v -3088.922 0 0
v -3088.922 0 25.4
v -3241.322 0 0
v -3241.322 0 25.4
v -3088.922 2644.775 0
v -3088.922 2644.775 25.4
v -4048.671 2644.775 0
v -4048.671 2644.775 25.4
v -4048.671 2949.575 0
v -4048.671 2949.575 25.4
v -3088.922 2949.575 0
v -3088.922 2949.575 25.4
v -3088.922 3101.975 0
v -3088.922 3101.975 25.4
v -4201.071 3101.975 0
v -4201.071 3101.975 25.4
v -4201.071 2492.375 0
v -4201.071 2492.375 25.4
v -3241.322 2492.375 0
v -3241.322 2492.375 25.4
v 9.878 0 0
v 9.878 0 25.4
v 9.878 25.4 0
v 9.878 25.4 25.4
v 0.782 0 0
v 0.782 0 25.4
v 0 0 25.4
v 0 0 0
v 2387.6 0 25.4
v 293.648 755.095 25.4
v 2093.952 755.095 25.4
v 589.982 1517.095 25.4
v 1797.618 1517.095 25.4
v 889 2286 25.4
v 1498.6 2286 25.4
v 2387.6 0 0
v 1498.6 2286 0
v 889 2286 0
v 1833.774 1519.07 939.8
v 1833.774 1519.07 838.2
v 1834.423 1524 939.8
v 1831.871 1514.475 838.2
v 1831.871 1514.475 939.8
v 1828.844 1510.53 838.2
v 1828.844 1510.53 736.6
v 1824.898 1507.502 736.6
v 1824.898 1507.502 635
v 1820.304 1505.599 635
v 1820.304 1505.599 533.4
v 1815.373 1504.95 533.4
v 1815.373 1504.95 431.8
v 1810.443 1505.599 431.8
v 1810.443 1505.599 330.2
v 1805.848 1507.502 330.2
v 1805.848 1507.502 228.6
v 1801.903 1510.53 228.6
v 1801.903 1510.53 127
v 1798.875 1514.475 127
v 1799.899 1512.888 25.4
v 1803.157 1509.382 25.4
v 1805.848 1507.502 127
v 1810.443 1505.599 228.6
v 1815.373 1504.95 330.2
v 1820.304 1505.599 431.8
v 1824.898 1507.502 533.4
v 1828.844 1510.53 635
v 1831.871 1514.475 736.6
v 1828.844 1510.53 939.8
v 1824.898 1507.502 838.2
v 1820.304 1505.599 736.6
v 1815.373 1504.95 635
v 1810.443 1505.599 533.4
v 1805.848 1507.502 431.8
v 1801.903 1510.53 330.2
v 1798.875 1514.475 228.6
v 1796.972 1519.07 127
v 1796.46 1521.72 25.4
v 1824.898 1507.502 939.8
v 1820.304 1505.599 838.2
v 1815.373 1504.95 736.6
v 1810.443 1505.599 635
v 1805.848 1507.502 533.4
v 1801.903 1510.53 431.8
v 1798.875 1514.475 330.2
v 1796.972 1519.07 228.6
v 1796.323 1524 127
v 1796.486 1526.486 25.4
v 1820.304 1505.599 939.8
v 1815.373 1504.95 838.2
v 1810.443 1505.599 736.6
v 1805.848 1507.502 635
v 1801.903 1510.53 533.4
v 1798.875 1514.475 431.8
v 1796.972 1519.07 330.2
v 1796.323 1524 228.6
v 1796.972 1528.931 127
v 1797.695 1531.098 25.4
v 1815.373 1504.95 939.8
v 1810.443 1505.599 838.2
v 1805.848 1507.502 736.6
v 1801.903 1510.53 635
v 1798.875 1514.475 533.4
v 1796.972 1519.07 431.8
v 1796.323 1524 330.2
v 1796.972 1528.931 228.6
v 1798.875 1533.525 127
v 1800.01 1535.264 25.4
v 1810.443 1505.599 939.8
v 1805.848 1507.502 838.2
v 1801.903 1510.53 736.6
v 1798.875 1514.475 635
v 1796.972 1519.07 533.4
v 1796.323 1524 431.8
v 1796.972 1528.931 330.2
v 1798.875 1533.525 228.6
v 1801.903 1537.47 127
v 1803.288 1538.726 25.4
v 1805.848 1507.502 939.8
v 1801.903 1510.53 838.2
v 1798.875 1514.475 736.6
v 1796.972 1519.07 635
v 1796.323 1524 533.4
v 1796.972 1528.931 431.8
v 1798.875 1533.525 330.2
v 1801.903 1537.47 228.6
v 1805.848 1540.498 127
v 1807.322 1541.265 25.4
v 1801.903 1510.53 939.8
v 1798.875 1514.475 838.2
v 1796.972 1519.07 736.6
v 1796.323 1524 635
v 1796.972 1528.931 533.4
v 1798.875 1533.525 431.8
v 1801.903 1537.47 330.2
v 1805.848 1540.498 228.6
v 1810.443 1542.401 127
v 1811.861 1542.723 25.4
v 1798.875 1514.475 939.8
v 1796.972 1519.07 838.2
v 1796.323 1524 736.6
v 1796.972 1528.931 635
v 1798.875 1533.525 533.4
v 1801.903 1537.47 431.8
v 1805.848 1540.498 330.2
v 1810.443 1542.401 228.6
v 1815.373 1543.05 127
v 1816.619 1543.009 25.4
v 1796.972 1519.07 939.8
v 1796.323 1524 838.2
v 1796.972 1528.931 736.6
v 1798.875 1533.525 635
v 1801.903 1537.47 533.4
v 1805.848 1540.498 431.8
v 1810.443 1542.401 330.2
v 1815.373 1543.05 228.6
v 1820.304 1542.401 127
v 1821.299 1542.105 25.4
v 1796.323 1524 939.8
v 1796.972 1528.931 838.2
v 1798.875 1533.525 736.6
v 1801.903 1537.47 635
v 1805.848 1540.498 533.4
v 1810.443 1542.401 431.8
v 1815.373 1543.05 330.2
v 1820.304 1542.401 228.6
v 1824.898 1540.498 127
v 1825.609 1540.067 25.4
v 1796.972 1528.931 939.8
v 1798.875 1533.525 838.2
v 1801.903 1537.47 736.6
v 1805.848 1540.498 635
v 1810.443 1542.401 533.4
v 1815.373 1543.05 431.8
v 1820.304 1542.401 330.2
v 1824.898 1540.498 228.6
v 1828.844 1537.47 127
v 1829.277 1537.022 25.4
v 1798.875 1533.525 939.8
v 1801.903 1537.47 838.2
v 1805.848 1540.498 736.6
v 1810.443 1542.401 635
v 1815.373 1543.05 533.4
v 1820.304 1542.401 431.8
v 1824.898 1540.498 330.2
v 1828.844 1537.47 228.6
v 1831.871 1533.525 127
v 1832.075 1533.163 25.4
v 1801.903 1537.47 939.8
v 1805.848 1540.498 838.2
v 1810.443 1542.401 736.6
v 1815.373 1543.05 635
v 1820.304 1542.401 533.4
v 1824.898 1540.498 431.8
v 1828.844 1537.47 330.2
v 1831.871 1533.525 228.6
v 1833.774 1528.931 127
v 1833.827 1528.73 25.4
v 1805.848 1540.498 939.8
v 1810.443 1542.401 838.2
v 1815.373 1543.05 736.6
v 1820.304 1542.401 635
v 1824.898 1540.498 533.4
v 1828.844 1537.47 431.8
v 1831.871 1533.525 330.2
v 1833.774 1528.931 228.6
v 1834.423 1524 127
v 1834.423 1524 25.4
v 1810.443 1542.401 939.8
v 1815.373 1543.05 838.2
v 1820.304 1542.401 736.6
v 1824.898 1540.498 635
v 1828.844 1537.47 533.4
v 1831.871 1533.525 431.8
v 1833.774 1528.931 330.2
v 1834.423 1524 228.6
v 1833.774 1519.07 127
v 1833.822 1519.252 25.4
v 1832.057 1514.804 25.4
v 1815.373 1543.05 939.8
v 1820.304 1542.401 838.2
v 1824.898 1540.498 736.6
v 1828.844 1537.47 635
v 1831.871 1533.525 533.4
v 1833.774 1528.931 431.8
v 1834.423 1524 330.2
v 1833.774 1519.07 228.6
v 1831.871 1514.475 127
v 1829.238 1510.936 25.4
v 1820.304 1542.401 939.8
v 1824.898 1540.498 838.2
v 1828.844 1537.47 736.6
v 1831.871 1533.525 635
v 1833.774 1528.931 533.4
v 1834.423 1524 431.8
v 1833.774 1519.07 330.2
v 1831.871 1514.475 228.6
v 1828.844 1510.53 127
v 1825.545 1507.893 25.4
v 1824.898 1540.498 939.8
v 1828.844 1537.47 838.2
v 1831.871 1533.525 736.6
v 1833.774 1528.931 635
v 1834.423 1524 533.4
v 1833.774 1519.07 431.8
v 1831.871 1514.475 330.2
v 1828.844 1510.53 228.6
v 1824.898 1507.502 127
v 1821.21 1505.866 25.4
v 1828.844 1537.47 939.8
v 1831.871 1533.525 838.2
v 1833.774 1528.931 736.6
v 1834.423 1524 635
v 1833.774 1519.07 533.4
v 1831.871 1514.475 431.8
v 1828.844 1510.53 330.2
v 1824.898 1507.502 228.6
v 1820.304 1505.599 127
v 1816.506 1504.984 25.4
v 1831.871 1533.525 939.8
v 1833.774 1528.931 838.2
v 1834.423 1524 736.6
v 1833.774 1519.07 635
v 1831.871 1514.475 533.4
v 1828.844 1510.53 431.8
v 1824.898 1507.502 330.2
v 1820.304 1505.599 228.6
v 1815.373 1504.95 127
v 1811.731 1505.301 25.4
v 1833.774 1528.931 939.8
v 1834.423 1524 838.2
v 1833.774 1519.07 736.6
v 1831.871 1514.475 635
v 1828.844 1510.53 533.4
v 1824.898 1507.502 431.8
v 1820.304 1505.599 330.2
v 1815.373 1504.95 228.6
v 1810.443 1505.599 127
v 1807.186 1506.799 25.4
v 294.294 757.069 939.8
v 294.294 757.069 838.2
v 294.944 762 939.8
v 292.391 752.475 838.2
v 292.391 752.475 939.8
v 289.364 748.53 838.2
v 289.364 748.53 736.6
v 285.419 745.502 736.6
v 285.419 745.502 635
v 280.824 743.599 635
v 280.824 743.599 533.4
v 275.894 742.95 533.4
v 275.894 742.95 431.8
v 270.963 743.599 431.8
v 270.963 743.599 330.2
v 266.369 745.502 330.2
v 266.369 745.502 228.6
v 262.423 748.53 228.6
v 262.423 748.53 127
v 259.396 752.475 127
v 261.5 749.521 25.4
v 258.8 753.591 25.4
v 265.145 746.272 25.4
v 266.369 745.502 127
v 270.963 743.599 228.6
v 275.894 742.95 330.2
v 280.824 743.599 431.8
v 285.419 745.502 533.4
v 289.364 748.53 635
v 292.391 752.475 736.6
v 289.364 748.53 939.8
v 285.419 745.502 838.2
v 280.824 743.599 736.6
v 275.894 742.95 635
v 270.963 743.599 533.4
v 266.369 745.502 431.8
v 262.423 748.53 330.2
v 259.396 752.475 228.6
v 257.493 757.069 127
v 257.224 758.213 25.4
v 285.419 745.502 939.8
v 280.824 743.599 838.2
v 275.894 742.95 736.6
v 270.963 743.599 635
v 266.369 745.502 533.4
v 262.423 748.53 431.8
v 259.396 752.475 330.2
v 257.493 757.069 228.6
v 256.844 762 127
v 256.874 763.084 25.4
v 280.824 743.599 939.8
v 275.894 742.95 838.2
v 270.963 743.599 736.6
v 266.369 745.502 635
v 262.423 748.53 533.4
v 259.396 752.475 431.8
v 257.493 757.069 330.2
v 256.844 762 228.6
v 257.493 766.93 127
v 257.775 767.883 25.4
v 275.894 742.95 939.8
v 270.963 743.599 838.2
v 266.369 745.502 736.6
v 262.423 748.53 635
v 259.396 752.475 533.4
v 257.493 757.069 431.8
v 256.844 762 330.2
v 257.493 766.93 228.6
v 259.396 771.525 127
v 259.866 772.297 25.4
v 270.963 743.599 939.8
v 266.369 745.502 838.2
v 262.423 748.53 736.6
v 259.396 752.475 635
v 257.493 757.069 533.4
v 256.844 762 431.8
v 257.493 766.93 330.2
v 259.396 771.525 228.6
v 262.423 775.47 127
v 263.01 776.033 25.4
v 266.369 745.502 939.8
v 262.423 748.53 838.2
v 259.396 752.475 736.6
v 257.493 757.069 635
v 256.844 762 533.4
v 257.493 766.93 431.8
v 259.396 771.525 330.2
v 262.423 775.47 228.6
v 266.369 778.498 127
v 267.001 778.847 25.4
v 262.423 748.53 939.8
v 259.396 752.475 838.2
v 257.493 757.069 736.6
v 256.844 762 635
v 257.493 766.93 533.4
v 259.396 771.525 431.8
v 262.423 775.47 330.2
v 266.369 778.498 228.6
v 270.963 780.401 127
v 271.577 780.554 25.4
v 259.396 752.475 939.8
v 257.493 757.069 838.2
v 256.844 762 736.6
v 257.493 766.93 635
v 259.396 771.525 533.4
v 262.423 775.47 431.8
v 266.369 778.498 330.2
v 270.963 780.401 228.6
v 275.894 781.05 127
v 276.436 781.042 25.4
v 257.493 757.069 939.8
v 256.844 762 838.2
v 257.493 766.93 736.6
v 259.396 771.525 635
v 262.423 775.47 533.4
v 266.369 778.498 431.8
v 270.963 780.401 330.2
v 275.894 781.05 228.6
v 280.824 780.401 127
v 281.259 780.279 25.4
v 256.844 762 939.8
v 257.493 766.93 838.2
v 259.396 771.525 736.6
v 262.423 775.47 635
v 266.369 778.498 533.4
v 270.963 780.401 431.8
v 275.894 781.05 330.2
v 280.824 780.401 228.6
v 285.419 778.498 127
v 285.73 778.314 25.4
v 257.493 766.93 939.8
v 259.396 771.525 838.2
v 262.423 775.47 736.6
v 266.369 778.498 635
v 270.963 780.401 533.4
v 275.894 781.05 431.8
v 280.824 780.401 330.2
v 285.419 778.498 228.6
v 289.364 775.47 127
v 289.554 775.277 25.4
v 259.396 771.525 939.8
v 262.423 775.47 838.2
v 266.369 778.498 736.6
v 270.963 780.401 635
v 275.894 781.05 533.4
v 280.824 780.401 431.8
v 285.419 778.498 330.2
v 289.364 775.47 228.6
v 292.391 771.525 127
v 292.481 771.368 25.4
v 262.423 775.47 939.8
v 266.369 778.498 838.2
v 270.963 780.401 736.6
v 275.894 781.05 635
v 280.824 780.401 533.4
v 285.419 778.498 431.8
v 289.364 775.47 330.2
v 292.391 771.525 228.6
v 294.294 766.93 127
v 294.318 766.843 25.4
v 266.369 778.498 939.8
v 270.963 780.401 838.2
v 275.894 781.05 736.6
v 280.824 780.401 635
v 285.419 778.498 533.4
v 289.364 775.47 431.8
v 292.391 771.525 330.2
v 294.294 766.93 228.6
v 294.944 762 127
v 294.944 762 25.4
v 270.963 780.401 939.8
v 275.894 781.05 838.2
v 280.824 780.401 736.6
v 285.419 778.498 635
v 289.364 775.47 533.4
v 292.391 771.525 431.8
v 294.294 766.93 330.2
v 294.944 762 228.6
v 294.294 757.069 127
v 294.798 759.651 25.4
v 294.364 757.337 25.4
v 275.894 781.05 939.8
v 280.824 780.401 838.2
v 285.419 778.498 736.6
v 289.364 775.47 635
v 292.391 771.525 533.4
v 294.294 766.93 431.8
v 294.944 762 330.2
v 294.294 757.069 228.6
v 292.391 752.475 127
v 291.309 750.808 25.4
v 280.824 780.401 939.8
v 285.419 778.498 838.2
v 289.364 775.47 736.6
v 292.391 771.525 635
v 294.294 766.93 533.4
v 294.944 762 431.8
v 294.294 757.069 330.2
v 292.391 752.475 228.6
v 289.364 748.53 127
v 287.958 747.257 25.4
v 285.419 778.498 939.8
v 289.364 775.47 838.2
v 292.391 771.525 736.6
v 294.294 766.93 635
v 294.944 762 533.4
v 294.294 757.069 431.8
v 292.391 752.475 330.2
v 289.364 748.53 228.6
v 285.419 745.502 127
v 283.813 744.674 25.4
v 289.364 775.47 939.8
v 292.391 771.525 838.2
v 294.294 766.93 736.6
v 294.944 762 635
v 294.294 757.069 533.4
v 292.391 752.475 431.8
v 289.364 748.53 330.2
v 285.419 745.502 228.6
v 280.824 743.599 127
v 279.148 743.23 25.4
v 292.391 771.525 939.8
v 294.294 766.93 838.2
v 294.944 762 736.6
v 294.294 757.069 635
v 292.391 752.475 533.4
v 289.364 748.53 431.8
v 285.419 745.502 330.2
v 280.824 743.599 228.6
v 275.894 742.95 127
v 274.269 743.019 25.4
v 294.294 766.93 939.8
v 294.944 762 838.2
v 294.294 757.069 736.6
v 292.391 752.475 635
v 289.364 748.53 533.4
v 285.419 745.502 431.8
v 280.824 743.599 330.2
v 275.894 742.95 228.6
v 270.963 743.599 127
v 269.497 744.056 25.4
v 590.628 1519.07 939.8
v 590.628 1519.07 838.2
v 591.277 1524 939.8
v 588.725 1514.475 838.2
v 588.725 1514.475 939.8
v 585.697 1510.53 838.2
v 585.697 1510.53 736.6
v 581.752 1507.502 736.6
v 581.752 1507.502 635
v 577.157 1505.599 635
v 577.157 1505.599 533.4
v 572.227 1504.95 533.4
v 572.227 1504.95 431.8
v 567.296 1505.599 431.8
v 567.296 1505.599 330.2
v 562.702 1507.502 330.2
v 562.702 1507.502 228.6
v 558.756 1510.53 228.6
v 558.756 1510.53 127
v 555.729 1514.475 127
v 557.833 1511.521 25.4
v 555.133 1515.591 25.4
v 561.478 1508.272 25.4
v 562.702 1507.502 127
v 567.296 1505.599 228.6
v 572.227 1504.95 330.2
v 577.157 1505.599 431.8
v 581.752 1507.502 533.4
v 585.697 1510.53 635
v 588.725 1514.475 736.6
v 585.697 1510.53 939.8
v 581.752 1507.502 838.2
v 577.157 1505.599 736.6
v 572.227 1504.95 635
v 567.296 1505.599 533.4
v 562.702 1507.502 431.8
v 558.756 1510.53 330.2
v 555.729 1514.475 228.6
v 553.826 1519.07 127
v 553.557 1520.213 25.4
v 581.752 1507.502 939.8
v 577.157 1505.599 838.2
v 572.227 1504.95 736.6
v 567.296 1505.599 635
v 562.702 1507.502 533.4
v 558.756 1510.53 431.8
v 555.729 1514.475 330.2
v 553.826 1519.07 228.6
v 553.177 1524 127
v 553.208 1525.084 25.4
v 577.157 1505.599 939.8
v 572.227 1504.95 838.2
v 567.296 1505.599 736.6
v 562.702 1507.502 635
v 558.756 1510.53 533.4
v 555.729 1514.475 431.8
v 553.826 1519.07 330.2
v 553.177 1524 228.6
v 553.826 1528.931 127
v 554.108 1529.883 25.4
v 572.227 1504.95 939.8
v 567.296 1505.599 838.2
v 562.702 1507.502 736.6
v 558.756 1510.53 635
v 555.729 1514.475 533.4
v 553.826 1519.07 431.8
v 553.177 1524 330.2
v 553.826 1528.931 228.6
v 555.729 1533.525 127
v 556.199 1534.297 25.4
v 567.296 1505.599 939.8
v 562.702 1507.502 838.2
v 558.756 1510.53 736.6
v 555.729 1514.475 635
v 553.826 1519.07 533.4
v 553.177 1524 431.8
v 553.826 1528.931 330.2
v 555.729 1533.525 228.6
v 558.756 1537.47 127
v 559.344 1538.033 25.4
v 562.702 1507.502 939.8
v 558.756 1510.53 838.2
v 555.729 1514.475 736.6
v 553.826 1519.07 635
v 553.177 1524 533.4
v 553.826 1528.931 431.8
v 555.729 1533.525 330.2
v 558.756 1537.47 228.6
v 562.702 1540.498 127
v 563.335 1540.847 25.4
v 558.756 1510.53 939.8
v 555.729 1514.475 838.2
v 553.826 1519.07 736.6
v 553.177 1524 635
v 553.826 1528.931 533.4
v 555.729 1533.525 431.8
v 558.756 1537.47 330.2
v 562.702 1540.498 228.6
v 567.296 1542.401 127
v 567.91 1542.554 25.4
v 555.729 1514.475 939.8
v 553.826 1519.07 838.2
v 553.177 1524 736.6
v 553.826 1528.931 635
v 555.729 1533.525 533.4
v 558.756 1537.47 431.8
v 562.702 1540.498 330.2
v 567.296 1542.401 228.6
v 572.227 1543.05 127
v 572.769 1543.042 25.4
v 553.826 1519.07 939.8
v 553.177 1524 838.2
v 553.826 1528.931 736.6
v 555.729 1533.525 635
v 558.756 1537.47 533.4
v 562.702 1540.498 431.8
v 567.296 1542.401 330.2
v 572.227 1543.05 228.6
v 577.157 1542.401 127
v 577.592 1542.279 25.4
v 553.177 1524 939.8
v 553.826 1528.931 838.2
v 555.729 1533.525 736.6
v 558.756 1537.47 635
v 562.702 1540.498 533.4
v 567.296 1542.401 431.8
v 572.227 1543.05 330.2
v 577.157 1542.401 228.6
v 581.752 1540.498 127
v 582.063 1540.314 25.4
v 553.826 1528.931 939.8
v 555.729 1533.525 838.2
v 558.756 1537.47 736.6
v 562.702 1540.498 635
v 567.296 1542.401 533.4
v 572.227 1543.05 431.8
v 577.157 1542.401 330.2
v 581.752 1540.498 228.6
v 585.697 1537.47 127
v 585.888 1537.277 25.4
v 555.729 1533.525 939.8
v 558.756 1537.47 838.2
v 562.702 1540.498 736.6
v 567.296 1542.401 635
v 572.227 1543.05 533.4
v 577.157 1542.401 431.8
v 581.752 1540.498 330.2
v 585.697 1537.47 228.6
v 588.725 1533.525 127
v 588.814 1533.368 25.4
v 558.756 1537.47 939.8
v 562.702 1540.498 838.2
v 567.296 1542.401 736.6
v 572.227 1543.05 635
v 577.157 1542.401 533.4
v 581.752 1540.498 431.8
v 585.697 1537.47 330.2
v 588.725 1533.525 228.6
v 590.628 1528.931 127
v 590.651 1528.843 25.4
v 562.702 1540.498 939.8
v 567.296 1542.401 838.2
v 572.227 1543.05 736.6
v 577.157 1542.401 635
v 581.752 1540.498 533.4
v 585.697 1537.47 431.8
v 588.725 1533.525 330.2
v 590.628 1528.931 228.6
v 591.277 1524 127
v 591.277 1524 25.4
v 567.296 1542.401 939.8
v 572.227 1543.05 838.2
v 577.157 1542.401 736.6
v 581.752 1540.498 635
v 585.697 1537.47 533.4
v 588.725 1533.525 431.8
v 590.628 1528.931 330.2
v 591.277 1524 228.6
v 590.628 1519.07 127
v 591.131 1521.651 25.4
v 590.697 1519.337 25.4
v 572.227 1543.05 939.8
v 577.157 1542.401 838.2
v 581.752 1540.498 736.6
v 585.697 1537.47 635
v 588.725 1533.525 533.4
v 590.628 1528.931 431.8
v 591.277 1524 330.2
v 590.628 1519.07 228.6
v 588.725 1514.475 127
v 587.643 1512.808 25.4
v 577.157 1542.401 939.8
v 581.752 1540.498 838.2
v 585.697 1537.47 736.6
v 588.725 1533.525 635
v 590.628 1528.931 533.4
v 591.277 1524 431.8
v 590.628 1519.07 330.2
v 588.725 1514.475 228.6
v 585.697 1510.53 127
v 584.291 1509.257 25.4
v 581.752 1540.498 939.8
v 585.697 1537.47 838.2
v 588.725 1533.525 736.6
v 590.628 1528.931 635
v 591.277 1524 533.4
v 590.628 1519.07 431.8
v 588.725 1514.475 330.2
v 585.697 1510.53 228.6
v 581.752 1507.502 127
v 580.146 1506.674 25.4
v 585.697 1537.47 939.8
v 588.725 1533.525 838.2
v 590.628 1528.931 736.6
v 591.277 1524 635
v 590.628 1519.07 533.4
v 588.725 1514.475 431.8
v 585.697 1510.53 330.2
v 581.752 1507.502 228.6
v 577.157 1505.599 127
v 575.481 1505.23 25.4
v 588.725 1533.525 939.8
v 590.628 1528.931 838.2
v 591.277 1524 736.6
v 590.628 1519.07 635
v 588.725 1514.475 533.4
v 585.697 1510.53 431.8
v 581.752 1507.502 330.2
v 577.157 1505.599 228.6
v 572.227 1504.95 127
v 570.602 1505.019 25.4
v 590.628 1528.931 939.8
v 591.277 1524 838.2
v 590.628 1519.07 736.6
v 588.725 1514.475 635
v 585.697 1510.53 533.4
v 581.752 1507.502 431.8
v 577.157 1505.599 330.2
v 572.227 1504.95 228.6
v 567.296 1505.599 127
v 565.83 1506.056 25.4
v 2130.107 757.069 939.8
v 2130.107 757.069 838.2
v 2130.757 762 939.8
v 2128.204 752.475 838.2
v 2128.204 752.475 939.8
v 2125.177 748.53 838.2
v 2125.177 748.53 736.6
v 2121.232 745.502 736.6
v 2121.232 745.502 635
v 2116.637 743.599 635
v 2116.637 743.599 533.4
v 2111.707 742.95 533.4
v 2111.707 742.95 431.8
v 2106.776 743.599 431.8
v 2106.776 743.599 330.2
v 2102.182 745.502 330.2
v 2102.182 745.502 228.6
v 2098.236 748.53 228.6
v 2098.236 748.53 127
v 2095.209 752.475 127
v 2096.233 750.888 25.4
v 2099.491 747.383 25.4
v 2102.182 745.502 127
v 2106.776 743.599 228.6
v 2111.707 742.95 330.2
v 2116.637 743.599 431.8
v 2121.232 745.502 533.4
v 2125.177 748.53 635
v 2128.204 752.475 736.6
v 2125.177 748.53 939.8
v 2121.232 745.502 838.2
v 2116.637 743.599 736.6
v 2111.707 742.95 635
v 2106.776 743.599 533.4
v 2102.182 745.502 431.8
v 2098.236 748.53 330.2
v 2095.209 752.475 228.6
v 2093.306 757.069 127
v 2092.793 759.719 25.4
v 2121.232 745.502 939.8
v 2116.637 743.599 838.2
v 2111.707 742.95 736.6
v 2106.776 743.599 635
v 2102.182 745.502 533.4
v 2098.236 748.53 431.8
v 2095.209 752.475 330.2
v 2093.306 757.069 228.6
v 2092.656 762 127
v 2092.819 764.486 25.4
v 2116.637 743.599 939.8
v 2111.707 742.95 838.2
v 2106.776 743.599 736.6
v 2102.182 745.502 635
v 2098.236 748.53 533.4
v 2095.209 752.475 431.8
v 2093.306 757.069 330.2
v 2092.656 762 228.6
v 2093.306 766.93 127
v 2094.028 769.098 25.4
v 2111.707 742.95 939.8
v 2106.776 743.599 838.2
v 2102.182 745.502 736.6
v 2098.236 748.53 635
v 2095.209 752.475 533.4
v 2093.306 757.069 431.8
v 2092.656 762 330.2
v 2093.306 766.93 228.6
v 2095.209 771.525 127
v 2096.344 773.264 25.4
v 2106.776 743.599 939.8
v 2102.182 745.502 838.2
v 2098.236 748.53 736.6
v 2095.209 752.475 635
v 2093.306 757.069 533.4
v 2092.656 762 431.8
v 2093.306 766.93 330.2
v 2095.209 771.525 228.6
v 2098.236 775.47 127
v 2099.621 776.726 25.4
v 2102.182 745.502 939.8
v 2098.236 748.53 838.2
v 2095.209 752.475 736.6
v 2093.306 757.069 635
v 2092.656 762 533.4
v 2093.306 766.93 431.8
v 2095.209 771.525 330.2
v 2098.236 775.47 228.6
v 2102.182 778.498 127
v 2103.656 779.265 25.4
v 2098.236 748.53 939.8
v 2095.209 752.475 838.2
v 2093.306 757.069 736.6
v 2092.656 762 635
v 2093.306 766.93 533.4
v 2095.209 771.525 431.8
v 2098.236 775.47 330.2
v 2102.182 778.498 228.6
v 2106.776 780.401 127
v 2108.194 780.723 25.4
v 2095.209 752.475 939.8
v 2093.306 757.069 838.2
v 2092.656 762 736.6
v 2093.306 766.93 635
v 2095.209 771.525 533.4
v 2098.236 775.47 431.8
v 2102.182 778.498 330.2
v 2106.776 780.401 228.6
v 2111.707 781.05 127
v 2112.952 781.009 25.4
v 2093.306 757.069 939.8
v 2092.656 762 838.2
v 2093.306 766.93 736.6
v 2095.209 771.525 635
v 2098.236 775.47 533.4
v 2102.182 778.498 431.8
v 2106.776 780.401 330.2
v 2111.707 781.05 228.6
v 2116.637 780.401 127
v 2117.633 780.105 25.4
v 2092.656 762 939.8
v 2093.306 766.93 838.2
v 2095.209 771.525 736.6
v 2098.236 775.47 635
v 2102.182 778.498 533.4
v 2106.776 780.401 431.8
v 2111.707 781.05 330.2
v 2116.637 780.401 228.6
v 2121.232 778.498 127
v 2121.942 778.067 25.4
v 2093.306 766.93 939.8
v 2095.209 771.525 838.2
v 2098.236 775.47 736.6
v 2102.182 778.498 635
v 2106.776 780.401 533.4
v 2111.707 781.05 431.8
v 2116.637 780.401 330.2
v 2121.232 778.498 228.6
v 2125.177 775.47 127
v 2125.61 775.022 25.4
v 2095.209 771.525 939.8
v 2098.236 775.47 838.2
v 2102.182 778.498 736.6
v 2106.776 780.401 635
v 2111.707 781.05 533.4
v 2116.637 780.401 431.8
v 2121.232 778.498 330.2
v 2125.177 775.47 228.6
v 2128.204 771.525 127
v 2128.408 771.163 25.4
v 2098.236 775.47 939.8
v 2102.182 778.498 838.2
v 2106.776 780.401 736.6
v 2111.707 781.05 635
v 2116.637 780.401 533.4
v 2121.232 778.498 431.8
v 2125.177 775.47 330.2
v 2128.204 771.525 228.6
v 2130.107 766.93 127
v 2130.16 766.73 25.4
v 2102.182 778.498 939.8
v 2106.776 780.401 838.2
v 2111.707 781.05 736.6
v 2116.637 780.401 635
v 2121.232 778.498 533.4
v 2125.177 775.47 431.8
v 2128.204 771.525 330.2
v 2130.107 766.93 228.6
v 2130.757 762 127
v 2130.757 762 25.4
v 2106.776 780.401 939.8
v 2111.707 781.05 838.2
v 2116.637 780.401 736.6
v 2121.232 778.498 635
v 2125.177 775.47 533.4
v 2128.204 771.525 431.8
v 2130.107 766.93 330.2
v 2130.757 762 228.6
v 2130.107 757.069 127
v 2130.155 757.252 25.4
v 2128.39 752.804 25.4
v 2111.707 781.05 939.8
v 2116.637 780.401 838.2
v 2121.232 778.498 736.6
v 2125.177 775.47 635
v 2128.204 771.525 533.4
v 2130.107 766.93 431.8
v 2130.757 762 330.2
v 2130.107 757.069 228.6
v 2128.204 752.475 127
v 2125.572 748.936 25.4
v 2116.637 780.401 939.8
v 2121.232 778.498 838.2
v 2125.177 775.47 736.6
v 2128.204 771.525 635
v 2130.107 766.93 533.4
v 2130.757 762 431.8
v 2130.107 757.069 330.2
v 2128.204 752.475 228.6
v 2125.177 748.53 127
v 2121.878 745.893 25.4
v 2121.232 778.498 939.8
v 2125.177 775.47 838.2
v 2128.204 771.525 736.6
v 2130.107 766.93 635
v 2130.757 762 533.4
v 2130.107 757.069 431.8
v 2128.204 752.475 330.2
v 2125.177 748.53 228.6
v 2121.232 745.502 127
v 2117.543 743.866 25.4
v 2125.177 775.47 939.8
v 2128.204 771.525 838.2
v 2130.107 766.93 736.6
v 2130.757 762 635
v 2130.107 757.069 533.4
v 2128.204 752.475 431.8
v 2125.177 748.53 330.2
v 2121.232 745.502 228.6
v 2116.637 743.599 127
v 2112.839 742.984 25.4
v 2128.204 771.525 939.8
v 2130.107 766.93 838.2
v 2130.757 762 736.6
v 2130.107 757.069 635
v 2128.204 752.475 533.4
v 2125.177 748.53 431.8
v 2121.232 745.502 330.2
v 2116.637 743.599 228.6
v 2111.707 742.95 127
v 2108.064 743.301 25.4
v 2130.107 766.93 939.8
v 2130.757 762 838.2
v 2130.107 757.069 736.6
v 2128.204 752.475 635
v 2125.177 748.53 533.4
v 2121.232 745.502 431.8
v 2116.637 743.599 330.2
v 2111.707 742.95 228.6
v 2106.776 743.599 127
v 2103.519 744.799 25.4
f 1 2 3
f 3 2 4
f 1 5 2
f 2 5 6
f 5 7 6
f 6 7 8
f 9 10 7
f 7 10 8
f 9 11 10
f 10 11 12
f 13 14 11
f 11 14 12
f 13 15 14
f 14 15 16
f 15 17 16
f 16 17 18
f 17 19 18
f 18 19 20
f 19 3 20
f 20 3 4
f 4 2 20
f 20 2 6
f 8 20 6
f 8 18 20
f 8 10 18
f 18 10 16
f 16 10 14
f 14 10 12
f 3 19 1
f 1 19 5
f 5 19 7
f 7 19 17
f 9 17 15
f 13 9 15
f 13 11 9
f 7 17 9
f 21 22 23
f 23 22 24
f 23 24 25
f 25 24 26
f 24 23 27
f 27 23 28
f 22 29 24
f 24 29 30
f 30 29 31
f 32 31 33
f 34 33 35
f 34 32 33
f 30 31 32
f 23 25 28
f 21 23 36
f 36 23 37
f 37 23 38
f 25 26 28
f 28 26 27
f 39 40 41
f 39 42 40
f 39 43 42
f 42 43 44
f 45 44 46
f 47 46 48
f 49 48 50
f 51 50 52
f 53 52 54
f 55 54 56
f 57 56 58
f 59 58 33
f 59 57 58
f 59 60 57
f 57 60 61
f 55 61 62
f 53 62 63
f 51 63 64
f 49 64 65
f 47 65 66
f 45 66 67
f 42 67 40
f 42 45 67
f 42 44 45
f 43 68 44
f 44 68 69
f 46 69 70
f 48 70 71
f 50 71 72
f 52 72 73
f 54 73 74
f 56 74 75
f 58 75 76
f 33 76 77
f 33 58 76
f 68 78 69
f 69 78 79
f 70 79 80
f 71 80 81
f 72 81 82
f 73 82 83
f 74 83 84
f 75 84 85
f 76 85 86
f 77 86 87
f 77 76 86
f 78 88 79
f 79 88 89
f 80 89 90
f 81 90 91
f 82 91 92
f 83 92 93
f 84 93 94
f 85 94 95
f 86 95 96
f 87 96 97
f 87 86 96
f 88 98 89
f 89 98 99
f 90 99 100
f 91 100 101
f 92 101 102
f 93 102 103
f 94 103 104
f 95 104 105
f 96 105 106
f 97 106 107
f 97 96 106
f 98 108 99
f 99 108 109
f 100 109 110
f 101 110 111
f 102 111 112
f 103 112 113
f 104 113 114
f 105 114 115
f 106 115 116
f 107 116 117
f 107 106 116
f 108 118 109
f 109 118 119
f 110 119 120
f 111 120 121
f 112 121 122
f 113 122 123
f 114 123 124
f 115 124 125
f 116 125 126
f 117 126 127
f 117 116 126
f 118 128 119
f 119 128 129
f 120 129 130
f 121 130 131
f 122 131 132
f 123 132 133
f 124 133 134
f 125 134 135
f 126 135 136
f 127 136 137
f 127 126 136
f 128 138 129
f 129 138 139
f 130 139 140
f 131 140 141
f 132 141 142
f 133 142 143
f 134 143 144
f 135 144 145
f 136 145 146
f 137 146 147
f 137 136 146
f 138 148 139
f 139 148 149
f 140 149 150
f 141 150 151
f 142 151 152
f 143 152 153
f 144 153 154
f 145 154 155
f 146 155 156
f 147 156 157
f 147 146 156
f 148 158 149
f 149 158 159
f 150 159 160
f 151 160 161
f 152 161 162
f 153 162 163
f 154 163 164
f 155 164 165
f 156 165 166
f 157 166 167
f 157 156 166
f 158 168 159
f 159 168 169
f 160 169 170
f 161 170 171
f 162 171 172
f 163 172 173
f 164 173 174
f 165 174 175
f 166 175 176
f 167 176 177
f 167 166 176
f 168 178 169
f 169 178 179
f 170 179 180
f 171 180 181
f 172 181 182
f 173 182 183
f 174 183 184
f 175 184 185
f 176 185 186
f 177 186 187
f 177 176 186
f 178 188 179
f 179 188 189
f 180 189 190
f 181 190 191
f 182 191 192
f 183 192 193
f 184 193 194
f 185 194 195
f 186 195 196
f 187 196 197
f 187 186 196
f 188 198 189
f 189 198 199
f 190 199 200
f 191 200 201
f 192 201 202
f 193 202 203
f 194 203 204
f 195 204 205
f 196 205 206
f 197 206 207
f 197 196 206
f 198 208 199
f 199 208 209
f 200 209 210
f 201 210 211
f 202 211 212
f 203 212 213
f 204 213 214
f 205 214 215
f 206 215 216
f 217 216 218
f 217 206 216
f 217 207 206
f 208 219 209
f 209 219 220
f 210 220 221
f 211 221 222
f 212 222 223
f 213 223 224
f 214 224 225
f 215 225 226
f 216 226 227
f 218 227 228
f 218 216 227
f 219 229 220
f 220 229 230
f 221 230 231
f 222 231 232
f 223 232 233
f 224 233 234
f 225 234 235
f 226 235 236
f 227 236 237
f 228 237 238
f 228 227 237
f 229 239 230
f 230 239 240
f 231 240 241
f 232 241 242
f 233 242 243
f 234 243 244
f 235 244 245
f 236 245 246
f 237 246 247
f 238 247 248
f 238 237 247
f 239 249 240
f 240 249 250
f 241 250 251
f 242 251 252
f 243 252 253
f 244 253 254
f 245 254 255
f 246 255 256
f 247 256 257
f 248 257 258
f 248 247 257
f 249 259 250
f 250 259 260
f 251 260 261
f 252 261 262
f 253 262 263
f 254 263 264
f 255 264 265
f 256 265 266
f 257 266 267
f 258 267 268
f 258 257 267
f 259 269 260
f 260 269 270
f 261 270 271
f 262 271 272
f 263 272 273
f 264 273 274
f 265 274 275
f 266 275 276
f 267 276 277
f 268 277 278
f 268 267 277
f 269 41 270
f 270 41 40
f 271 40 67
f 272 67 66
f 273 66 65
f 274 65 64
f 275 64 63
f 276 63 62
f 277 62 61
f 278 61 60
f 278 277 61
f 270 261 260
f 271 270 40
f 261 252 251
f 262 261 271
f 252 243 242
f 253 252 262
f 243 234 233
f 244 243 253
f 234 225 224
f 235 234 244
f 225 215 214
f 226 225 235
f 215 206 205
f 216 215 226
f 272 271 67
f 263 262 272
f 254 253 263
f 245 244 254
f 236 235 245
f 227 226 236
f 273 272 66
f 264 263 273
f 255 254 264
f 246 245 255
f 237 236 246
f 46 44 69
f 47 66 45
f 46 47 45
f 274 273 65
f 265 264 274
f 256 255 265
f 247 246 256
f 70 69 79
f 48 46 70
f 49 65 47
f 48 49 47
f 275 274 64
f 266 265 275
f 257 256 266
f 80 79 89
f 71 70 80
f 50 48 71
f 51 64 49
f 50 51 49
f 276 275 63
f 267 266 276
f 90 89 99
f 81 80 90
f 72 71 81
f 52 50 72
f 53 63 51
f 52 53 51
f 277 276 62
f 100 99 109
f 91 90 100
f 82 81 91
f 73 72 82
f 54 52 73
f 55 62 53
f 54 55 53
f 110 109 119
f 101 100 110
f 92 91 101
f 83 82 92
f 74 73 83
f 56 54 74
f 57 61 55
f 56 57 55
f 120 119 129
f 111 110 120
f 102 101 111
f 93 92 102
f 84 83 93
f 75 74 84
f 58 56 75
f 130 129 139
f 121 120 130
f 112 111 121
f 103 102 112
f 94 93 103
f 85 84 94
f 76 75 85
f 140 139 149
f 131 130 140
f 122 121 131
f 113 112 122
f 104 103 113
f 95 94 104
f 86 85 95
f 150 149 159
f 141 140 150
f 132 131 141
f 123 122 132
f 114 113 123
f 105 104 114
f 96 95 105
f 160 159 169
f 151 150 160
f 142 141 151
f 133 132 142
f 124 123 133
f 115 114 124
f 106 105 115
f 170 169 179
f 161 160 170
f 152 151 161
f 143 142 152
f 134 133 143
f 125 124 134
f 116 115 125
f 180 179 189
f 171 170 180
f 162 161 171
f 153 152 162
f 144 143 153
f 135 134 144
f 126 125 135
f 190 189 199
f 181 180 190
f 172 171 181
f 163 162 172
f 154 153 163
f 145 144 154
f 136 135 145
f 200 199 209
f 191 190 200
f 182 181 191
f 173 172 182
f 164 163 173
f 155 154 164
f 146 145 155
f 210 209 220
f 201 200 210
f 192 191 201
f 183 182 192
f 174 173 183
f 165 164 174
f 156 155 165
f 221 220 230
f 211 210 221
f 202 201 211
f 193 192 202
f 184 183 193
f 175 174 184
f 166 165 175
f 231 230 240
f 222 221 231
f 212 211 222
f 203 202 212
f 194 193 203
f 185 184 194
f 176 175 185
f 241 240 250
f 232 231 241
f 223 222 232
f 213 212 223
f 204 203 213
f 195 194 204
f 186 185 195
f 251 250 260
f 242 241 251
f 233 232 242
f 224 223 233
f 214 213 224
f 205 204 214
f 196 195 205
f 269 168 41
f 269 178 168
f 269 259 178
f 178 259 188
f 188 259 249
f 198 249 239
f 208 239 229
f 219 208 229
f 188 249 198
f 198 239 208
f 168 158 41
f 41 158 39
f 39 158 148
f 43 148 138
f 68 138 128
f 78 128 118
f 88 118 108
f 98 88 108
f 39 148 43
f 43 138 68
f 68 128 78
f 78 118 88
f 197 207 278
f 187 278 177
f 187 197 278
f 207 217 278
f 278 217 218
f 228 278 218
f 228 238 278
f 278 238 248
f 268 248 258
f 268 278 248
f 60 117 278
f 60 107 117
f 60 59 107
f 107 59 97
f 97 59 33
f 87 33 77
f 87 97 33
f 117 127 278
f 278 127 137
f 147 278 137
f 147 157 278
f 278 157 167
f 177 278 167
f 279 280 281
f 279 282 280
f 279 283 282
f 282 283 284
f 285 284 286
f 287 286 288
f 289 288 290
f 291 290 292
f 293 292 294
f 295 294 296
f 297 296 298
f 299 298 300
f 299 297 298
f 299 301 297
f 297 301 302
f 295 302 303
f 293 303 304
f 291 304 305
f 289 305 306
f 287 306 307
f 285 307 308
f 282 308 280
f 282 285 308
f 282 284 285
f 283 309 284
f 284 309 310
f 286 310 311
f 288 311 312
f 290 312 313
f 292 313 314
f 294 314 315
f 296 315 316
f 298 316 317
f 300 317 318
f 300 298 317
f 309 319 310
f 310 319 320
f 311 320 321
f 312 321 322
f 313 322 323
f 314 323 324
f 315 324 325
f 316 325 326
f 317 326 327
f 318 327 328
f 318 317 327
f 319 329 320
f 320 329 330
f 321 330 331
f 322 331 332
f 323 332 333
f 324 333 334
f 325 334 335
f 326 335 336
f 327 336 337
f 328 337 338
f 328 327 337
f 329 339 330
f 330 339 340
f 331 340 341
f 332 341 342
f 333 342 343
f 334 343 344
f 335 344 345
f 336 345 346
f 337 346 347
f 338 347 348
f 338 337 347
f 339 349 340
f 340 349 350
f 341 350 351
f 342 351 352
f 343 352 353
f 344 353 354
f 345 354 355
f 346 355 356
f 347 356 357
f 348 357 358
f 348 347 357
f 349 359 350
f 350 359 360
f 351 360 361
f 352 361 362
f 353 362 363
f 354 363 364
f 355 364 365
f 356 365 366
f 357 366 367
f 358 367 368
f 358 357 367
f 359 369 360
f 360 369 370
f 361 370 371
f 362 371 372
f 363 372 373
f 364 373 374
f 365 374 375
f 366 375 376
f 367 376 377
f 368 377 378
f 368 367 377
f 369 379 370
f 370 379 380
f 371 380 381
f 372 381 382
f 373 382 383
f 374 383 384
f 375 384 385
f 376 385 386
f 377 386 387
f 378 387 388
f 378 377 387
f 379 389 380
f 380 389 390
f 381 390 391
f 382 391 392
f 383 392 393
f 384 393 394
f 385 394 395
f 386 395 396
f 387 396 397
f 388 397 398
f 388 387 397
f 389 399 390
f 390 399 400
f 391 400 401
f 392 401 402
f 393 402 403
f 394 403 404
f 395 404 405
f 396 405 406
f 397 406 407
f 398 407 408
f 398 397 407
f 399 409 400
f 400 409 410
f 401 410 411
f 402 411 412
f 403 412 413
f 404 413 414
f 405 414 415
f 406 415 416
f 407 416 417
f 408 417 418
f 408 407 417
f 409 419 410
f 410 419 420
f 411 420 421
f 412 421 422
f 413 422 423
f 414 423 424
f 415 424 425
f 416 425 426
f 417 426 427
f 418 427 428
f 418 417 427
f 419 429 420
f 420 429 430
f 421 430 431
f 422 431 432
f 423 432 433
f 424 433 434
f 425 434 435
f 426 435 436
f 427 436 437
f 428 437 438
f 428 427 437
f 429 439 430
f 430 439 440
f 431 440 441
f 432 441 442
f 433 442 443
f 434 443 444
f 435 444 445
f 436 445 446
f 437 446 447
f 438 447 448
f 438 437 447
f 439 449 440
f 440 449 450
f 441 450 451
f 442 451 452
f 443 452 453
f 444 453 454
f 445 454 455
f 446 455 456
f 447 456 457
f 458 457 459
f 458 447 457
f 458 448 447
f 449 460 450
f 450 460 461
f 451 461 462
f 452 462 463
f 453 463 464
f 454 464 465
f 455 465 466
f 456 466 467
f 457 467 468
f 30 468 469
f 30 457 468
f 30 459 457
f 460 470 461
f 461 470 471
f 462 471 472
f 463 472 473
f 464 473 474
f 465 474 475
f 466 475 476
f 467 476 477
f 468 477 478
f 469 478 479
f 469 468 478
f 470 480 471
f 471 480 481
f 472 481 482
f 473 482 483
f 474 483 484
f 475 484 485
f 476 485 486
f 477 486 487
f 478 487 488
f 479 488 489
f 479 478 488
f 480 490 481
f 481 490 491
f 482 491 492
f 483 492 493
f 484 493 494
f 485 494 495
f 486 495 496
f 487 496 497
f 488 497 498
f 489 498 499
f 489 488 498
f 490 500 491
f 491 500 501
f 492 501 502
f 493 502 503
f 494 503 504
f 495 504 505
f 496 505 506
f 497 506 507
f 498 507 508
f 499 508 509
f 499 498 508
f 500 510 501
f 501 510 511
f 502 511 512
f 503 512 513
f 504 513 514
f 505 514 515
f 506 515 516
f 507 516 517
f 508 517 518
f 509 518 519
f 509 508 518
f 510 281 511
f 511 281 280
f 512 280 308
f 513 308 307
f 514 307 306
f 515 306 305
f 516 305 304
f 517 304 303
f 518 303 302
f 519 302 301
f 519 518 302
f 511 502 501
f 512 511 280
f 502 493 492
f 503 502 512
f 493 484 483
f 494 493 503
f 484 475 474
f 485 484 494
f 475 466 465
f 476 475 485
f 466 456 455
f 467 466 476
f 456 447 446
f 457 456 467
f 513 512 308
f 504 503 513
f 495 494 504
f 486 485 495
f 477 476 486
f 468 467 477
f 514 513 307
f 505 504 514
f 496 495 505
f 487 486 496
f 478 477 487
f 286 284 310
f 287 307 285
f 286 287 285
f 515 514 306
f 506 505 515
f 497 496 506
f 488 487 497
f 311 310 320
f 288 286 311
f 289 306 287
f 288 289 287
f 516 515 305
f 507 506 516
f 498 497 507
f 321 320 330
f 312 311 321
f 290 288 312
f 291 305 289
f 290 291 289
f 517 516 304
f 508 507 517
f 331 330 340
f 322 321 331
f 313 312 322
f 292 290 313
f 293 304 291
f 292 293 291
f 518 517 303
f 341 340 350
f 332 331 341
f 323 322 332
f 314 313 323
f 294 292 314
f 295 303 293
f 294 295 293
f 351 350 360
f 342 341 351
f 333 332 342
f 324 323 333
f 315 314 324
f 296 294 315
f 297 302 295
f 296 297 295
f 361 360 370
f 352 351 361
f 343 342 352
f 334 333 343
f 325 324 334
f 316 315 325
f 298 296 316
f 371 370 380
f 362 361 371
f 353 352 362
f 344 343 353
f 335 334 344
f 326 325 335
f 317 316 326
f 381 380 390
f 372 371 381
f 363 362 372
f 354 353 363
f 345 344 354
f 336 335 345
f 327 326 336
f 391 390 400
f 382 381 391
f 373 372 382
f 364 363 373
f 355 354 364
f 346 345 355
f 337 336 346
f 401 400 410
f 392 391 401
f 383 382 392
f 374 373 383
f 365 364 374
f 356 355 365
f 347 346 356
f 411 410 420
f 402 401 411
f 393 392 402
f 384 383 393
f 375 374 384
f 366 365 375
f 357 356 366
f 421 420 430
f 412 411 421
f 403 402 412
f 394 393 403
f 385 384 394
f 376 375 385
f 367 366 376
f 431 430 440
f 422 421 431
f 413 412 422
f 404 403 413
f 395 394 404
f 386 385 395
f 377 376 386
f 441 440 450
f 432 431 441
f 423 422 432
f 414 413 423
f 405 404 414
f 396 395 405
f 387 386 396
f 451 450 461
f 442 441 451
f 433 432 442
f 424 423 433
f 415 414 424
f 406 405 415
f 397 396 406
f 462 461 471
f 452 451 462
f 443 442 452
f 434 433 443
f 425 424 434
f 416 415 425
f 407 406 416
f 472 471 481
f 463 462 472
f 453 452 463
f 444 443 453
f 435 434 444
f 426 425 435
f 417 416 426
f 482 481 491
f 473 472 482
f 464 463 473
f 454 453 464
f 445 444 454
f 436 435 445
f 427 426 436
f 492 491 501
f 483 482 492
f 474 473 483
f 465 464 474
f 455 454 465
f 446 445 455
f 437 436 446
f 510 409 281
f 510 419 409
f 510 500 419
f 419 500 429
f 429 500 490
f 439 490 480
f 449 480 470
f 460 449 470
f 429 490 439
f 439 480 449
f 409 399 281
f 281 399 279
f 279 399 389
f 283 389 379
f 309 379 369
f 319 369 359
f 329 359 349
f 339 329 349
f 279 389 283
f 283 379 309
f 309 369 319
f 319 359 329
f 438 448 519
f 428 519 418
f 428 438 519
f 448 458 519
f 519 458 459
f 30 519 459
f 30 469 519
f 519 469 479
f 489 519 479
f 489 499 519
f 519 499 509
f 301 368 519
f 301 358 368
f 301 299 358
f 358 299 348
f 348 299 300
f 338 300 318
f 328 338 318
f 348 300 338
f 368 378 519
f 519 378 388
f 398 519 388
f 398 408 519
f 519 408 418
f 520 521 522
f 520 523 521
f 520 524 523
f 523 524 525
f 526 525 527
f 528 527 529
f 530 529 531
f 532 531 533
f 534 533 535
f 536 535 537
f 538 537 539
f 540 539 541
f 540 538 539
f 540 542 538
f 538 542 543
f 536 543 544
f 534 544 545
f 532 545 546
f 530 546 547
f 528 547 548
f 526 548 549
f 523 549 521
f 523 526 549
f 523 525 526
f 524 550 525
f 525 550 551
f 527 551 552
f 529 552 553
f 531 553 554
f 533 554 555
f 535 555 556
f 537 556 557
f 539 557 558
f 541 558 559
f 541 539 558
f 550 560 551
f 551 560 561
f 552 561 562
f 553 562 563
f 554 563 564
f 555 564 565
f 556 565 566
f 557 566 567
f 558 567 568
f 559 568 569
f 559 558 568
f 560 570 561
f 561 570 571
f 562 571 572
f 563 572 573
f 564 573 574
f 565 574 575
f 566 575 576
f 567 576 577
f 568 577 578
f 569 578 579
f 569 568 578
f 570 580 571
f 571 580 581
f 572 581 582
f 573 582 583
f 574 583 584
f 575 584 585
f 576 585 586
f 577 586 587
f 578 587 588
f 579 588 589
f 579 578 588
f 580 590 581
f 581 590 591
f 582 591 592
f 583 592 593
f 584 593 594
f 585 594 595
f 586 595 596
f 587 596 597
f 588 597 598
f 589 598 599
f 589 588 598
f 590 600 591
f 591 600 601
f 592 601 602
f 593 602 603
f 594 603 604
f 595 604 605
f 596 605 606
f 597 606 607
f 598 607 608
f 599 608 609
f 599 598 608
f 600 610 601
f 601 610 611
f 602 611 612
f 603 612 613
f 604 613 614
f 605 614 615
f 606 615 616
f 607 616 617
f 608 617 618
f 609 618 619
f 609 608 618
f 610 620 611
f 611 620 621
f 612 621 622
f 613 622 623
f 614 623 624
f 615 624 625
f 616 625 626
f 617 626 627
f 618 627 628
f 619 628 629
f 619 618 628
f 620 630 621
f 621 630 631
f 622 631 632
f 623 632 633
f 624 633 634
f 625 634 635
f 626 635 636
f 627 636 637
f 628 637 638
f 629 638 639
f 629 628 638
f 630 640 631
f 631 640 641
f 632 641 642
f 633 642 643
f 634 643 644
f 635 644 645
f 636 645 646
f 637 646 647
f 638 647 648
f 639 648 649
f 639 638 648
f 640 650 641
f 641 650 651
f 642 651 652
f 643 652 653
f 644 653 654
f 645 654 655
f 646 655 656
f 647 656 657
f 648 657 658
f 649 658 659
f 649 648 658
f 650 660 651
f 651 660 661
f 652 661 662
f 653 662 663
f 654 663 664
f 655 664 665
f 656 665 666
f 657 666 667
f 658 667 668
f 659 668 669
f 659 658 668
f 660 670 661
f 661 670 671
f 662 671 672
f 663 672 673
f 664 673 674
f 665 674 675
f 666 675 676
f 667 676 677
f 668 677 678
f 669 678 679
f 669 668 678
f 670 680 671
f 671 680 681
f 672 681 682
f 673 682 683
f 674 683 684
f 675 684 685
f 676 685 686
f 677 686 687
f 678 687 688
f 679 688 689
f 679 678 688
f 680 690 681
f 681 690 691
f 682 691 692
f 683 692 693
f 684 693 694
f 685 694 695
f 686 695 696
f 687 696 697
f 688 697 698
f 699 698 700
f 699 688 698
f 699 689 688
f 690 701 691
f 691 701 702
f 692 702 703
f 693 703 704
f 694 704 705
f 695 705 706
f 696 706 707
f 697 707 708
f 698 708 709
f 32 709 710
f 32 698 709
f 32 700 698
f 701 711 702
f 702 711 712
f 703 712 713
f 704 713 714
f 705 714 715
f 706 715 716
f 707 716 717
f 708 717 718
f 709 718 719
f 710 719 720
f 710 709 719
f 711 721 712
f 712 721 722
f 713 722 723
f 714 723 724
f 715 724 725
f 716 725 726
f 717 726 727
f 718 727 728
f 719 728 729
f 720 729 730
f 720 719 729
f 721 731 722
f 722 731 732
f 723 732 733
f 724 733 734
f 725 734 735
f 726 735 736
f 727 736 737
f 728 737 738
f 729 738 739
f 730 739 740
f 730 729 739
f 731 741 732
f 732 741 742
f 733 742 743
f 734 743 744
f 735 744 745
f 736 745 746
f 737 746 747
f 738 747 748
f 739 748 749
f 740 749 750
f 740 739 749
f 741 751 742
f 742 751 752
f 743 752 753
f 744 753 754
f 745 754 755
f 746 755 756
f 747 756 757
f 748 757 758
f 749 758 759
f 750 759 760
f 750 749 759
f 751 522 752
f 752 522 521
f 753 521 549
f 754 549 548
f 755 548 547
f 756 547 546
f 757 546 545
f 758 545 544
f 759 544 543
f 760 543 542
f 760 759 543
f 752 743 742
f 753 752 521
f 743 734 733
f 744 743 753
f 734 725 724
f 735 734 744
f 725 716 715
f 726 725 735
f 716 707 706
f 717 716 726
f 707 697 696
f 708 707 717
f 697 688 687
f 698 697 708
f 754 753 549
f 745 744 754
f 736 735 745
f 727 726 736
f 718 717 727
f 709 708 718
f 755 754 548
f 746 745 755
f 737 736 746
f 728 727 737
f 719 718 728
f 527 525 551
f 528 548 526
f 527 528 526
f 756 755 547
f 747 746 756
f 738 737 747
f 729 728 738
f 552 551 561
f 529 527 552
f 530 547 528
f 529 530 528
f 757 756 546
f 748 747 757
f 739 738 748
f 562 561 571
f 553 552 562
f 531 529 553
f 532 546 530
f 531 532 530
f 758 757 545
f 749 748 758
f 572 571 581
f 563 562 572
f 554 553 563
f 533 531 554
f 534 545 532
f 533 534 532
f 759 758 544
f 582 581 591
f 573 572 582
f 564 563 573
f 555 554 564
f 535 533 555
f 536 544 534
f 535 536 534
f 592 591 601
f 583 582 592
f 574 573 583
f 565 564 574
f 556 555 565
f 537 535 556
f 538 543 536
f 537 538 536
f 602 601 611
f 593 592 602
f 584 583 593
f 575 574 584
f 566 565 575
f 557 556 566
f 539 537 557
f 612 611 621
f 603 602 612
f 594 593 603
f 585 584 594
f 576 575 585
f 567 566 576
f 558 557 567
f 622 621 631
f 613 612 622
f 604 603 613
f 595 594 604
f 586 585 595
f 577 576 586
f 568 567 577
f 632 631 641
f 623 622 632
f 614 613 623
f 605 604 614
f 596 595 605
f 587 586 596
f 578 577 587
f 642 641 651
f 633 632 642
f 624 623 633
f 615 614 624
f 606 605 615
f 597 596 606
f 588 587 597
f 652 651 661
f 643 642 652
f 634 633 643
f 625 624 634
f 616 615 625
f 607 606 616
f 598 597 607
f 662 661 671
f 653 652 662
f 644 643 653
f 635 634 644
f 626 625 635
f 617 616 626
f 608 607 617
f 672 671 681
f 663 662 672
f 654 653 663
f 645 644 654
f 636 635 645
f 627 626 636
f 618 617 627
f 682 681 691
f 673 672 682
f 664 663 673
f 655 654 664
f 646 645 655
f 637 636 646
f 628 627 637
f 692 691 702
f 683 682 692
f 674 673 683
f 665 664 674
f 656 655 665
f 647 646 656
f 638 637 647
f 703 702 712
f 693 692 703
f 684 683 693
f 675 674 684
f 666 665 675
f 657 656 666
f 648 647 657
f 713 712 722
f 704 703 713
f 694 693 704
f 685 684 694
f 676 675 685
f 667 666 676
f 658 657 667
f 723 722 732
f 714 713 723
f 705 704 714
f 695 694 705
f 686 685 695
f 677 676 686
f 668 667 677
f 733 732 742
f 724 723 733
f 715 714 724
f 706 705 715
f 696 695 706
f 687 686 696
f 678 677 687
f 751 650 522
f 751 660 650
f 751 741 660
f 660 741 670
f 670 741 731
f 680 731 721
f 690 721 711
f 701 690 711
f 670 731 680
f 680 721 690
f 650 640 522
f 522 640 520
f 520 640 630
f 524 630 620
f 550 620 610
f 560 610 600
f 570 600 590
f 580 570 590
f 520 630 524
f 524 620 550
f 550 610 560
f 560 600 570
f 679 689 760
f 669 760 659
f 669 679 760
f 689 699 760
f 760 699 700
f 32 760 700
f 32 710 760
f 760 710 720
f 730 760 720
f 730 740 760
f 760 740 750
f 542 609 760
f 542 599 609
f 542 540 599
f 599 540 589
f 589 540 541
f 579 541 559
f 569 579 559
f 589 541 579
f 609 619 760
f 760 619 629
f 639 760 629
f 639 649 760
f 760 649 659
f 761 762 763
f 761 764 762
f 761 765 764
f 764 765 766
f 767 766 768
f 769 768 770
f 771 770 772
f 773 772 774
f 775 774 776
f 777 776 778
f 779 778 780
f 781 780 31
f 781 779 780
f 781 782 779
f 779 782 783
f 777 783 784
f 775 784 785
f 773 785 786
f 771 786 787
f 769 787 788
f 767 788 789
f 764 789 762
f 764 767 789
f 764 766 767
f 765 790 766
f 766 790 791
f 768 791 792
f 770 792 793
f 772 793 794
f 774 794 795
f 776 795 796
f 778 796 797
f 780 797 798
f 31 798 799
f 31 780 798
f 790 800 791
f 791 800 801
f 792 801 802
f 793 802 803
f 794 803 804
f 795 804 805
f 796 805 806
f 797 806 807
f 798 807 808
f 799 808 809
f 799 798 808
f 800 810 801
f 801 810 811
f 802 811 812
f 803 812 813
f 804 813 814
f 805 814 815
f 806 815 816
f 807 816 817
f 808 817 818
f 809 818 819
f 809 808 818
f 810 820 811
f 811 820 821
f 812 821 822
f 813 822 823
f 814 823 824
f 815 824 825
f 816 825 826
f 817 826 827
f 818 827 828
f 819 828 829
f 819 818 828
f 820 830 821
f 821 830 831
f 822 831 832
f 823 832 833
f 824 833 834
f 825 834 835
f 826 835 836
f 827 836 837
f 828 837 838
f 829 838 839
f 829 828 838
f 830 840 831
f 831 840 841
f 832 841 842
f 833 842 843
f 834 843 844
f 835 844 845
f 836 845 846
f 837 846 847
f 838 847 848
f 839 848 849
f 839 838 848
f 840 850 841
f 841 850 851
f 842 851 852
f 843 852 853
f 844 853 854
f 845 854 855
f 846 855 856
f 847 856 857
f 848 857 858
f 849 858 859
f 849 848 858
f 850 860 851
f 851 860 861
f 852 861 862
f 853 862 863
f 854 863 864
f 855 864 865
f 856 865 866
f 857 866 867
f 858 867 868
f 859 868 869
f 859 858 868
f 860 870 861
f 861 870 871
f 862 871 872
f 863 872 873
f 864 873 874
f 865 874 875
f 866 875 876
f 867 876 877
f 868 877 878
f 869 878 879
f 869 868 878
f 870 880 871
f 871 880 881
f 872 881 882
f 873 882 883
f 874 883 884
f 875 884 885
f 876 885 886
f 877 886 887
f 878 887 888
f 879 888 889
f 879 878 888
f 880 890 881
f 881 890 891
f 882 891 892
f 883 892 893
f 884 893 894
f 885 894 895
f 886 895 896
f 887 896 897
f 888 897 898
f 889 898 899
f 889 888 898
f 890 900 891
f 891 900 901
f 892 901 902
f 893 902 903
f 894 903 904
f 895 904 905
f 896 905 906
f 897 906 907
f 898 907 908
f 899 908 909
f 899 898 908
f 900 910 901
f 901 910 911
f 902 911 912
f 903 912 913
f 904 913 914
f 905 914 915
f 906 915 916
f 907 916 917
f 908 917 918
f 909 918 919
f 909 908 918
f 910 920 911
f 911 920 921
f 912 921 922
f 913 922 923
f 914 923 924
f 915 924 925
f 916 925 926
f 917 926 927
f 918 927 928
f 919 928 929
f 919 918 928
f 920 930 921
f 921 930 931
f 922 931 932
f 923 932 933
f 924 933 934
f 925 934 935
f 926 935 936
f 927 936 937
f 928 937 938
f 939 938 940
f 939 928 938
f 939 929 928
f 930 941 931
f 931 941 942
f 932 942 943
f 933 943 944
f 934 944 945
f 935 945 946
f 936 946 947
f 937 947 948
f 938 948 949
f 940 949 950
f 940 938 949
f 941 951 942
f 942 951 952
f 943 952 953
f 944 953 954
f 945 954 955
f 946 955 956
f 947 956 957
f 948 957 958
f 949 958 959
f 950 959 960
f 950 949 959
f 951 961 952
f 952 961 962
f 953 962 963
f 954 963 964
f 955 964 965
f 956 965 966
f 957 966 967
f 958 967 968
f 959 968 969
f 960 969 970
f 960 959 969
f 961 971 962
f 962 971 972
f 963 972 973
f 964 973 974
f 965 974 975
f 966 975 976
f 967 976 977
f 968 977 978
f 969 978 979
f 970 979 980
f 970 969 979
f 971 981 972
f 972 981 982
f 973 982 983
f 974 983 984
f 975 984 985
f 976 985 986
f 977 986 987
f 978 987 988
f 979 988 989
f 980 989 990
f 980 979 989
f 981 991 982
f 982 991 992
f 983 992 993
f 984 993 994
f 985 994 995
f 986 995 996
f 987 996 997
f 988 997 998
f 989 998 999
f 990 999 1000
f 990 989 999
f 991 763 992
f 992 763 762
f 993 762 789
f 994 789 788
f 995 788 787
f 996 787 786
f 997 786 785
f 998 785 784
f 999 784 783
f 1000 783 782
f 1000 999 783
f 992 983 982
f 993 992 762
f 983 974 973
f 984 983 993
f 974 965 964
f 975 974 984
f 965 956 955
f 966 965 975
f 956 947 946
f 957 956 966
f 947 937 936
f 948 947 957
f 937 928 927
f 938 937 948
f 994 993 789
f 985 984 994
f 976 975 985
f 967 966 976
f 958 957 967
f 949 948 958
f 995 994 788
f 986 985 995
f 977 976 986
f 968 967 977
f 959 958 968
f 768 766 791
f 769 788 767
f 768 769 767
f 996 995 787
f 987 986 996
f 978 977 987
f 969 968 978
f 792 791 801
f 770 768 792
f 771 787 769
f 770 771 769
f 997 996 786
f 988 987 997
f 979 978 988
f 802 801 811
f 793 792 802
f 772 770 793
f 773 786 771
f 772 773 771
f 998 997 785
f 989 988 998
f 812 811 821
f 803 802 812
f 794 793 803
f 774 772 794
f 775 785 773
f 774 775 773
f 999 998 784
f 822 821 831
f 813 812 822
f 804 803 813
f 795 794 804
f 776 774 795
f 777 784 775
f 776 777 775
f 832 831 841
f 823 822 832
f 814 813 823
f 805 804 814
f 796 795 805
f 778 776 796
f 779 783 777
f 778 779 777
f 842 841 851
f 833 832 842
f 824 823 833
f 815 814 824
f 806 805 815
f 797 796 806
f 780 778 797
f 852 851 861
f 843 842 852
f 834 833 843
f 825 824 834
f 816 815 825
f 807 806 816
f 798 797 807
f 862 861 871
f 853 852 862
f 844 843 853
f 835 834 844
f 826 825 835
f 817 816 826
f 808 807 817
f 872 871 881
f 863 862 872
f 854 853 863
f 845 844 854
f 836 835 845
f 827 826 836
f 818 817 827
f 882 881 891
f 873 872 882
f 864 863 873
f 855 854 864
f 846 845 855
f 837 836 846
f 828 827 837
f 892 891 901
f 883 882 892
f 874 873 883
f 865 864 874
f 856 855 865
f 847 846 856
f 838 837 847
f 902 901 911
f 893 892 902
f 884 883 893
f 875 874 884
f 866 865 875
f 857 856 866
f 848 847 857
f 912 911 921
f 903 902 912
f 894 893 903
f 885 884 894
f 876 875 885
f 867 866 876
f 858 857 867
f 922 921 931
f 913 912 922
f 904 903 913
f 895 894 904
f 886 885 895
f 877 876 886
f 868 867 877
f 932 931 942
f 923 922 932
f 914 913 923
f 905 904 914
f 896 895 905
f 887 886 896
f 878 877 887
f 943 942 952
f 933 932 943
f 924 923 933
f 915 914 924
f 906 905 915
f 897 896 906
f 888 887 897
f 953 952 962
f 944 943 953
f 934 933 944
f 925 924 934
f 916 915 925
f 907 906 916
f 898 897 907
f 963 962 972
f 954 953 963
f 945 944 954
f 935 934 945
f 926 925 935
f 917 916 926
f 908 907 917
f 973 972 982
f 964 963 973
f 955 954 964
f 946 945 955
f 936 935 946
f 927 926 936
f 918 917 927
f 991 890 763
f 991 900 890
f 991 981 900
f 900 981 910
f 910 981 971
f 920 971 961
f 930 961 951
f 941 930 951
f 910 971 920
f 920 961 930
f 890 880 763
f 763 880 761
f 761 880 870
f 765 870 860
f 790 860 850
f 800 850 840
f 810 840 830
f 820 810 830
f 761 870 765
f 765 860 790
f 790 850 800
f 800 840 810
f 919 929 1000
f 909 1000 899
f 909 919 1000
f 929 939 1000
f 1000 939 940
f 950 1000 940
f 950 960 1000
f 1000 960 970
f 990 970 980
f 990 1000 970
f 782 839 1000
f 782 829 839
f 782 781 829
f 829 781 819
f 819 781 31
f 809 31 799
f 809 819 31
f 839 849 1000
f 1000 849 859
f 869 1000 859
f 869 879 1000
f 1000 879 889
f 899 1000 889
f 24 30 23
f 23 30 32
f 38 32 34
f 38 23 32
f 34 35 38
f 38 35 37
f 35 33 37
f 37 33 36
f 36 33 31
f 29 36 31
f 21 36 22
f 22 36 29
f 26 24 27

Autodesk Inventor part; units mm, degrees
ref_plane "YZ Plane" through (0, 0, 0) normal (1, 0, 0) x (0, 1, 0)
ref_plane "XZ Plane" through (0, 0, 0) normal (0, 1, 0) x (-1, 0, 0)
ref_plane "XY Plane" through (0, 0, 0) normal (0, 0, 1) x (1, 0, 0)
sketch "Sketch1" plane through (0, 0, 0) normal (0, 0, 1) x (1, 0, 0)
  line L0 (0, 0) -> (2387.6, 0)
  line L1 (2387.6, 0) -> (1498.6, 2286)
  line L2 (1498.6, 2286) -> (889, 2286)
  line L3 (889, 2286) -> (0, 0)
  dimension "d0" = 609.6
  dimension "d1" = 2387.6
  dimension "d2" = 2286
extrude "Extrusion1" add sketch "Sketch1" along normal blind 25.4
sketch "Sketch2" plane through (0, 0, 25.4) normal (0, 0, 1) x (1, 0, 0)
  line L0 (0, 0) -> (889, 2286) projected
  circle A0 centre (572.2269, 1524) radius 19.05
  circle A1 centre (275.8935, 762) radius 19.05
  line L1 (1498.6, 2286) -> (2387.6, 0) projected
  circle A2 centre (1815.3731, 1524) radius 19.05
  circle A3 centre (2111.7065, 762) radius 19.05
  line L2 (572.2269, 1524) -> (1815.3731, 1524) construction
  line L3 (275.8935, 762) -> (2111.7065, 762) construction
  dimension "d5" = 38.1
  dimension "d6" = 762
  dimension "d7" = 1524
extrude "Extrusion2" add sketch "Sketch2" along normal blind 914.4
sketch "Sketch3" plane through (0, 0, 25.4) normal (0, 0, 1) x (1, 0, 0)
  line L0 (0, 0) -> (293.6482, 755.0954) projected
  line L1 (2387.6, 0) -> (0, 0) projected
  line L2 (0, 0) -> (0.7819, 2.0105)
  line L3 (0.7819, 0) -> (0.7819, 2.0105)
  line L4 (0.7819, 0) -> (0, 0)
  line L5 (0.7819, 0) -> (9.8778, 25.4)
  line L6 (9.8778, 25.4) -> (9.8778, 0)
  line L7 (9.8778, 0) -> (0.7819, 0)
  dimension "d10" = 25.4
extrude "Extrusion3" cut sketch "Sketch3" against normal through all contours L5 L6 L1
sketch "Sketch4" plane through (0, 0, 25.4) normal (0, 0, 1) x (1, 0, 0)
  line L0 (-3241.3222, 0) -> (-3241.3222, 2492.375)
  line L1 (-3241.3222, 2492.375) -> (-4201.0707, 2492.375)
  line L2 (-4201.0707, 2492.375) -> (-4201.0707, 3101.975)
  line L3 (-4201.0707, 3101.975) -> (-3088.9222, 3101.975)
  line L4 (-3088.9222, 3101.975) -> (-3088.9222, 2949.575)
  line L5 (-3088.9222, 2949.575) -> (-4048.6707, 2949.575)
  line L6 (-4048.6707, 2949.575) -> (-4048.6707, 2644.775)
  line L7 (-4048.6707, 2644.775) -> (-3088.9222, 2644.775)
  line L8 (-3088.9222, 2644.775) -> (-3088.9222, 0)
  line L9 (-3088.9222, 0) -> (-3241.3222, 0)
  line L10 (-3088.9222, 0) -> (0, 0) construction
  point P0 (9.8778, 0)
  dimension "d13" = 152.4
  dimension "d14" = 152.4
  dimension "d15" = 152.4
  dimension "d16" = 304.8
  dimension "d17" = 2644.775
  dimension "d18" = 3098.8
extrude "Extrusion4" add sketch "Sketch4" against normal blind 25.4
properties part number "PyramidMockup"
